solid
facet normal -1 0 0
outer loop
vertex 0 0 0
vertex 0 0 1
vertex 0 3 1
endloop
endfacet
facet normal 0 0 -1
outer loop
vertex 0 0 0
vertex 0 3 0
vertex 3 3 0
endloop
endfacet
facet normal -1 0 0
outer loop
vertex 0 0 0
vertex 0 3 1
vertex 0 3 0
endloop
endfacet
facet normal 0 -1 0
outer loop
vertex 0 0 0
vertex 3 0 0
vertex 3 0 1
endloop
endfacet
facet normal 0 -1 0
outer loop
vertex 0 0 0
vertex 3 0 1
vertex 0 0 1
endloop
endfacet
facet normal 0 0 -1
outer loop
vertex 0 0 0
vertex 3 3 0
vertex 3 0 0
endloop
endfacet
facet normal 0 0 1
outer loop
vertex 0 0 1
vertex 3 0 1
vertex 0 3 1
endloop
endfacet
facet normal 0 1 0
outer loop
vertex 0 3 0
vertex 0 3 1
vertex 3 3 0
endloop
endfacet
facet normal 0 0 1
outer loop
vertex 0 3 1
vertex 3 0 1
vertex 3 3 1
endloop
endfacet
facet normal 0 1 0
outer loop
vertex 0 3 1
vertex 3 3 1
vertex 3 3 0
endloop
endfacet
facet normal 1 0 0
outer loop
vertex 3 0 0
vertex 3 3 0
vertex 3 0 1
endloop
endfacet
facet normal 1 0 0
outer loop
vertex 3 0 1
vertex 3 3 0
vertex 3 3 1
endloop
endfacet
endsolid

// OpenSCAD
/* Warning, this is a very basic generator with a lot of approximation 
input data : [MSOP, DSA, 3x3x1.0mm, 10, , A, C04-01083A]
generated by com.zoubworld.electronics.cad.model3d.Basic
Date : Sun Feb 15 10:50:49 CET 2026
*/

//body
color("black")
translate([0,0,0])
cube([3.0,3.0,1.0], center=false);
